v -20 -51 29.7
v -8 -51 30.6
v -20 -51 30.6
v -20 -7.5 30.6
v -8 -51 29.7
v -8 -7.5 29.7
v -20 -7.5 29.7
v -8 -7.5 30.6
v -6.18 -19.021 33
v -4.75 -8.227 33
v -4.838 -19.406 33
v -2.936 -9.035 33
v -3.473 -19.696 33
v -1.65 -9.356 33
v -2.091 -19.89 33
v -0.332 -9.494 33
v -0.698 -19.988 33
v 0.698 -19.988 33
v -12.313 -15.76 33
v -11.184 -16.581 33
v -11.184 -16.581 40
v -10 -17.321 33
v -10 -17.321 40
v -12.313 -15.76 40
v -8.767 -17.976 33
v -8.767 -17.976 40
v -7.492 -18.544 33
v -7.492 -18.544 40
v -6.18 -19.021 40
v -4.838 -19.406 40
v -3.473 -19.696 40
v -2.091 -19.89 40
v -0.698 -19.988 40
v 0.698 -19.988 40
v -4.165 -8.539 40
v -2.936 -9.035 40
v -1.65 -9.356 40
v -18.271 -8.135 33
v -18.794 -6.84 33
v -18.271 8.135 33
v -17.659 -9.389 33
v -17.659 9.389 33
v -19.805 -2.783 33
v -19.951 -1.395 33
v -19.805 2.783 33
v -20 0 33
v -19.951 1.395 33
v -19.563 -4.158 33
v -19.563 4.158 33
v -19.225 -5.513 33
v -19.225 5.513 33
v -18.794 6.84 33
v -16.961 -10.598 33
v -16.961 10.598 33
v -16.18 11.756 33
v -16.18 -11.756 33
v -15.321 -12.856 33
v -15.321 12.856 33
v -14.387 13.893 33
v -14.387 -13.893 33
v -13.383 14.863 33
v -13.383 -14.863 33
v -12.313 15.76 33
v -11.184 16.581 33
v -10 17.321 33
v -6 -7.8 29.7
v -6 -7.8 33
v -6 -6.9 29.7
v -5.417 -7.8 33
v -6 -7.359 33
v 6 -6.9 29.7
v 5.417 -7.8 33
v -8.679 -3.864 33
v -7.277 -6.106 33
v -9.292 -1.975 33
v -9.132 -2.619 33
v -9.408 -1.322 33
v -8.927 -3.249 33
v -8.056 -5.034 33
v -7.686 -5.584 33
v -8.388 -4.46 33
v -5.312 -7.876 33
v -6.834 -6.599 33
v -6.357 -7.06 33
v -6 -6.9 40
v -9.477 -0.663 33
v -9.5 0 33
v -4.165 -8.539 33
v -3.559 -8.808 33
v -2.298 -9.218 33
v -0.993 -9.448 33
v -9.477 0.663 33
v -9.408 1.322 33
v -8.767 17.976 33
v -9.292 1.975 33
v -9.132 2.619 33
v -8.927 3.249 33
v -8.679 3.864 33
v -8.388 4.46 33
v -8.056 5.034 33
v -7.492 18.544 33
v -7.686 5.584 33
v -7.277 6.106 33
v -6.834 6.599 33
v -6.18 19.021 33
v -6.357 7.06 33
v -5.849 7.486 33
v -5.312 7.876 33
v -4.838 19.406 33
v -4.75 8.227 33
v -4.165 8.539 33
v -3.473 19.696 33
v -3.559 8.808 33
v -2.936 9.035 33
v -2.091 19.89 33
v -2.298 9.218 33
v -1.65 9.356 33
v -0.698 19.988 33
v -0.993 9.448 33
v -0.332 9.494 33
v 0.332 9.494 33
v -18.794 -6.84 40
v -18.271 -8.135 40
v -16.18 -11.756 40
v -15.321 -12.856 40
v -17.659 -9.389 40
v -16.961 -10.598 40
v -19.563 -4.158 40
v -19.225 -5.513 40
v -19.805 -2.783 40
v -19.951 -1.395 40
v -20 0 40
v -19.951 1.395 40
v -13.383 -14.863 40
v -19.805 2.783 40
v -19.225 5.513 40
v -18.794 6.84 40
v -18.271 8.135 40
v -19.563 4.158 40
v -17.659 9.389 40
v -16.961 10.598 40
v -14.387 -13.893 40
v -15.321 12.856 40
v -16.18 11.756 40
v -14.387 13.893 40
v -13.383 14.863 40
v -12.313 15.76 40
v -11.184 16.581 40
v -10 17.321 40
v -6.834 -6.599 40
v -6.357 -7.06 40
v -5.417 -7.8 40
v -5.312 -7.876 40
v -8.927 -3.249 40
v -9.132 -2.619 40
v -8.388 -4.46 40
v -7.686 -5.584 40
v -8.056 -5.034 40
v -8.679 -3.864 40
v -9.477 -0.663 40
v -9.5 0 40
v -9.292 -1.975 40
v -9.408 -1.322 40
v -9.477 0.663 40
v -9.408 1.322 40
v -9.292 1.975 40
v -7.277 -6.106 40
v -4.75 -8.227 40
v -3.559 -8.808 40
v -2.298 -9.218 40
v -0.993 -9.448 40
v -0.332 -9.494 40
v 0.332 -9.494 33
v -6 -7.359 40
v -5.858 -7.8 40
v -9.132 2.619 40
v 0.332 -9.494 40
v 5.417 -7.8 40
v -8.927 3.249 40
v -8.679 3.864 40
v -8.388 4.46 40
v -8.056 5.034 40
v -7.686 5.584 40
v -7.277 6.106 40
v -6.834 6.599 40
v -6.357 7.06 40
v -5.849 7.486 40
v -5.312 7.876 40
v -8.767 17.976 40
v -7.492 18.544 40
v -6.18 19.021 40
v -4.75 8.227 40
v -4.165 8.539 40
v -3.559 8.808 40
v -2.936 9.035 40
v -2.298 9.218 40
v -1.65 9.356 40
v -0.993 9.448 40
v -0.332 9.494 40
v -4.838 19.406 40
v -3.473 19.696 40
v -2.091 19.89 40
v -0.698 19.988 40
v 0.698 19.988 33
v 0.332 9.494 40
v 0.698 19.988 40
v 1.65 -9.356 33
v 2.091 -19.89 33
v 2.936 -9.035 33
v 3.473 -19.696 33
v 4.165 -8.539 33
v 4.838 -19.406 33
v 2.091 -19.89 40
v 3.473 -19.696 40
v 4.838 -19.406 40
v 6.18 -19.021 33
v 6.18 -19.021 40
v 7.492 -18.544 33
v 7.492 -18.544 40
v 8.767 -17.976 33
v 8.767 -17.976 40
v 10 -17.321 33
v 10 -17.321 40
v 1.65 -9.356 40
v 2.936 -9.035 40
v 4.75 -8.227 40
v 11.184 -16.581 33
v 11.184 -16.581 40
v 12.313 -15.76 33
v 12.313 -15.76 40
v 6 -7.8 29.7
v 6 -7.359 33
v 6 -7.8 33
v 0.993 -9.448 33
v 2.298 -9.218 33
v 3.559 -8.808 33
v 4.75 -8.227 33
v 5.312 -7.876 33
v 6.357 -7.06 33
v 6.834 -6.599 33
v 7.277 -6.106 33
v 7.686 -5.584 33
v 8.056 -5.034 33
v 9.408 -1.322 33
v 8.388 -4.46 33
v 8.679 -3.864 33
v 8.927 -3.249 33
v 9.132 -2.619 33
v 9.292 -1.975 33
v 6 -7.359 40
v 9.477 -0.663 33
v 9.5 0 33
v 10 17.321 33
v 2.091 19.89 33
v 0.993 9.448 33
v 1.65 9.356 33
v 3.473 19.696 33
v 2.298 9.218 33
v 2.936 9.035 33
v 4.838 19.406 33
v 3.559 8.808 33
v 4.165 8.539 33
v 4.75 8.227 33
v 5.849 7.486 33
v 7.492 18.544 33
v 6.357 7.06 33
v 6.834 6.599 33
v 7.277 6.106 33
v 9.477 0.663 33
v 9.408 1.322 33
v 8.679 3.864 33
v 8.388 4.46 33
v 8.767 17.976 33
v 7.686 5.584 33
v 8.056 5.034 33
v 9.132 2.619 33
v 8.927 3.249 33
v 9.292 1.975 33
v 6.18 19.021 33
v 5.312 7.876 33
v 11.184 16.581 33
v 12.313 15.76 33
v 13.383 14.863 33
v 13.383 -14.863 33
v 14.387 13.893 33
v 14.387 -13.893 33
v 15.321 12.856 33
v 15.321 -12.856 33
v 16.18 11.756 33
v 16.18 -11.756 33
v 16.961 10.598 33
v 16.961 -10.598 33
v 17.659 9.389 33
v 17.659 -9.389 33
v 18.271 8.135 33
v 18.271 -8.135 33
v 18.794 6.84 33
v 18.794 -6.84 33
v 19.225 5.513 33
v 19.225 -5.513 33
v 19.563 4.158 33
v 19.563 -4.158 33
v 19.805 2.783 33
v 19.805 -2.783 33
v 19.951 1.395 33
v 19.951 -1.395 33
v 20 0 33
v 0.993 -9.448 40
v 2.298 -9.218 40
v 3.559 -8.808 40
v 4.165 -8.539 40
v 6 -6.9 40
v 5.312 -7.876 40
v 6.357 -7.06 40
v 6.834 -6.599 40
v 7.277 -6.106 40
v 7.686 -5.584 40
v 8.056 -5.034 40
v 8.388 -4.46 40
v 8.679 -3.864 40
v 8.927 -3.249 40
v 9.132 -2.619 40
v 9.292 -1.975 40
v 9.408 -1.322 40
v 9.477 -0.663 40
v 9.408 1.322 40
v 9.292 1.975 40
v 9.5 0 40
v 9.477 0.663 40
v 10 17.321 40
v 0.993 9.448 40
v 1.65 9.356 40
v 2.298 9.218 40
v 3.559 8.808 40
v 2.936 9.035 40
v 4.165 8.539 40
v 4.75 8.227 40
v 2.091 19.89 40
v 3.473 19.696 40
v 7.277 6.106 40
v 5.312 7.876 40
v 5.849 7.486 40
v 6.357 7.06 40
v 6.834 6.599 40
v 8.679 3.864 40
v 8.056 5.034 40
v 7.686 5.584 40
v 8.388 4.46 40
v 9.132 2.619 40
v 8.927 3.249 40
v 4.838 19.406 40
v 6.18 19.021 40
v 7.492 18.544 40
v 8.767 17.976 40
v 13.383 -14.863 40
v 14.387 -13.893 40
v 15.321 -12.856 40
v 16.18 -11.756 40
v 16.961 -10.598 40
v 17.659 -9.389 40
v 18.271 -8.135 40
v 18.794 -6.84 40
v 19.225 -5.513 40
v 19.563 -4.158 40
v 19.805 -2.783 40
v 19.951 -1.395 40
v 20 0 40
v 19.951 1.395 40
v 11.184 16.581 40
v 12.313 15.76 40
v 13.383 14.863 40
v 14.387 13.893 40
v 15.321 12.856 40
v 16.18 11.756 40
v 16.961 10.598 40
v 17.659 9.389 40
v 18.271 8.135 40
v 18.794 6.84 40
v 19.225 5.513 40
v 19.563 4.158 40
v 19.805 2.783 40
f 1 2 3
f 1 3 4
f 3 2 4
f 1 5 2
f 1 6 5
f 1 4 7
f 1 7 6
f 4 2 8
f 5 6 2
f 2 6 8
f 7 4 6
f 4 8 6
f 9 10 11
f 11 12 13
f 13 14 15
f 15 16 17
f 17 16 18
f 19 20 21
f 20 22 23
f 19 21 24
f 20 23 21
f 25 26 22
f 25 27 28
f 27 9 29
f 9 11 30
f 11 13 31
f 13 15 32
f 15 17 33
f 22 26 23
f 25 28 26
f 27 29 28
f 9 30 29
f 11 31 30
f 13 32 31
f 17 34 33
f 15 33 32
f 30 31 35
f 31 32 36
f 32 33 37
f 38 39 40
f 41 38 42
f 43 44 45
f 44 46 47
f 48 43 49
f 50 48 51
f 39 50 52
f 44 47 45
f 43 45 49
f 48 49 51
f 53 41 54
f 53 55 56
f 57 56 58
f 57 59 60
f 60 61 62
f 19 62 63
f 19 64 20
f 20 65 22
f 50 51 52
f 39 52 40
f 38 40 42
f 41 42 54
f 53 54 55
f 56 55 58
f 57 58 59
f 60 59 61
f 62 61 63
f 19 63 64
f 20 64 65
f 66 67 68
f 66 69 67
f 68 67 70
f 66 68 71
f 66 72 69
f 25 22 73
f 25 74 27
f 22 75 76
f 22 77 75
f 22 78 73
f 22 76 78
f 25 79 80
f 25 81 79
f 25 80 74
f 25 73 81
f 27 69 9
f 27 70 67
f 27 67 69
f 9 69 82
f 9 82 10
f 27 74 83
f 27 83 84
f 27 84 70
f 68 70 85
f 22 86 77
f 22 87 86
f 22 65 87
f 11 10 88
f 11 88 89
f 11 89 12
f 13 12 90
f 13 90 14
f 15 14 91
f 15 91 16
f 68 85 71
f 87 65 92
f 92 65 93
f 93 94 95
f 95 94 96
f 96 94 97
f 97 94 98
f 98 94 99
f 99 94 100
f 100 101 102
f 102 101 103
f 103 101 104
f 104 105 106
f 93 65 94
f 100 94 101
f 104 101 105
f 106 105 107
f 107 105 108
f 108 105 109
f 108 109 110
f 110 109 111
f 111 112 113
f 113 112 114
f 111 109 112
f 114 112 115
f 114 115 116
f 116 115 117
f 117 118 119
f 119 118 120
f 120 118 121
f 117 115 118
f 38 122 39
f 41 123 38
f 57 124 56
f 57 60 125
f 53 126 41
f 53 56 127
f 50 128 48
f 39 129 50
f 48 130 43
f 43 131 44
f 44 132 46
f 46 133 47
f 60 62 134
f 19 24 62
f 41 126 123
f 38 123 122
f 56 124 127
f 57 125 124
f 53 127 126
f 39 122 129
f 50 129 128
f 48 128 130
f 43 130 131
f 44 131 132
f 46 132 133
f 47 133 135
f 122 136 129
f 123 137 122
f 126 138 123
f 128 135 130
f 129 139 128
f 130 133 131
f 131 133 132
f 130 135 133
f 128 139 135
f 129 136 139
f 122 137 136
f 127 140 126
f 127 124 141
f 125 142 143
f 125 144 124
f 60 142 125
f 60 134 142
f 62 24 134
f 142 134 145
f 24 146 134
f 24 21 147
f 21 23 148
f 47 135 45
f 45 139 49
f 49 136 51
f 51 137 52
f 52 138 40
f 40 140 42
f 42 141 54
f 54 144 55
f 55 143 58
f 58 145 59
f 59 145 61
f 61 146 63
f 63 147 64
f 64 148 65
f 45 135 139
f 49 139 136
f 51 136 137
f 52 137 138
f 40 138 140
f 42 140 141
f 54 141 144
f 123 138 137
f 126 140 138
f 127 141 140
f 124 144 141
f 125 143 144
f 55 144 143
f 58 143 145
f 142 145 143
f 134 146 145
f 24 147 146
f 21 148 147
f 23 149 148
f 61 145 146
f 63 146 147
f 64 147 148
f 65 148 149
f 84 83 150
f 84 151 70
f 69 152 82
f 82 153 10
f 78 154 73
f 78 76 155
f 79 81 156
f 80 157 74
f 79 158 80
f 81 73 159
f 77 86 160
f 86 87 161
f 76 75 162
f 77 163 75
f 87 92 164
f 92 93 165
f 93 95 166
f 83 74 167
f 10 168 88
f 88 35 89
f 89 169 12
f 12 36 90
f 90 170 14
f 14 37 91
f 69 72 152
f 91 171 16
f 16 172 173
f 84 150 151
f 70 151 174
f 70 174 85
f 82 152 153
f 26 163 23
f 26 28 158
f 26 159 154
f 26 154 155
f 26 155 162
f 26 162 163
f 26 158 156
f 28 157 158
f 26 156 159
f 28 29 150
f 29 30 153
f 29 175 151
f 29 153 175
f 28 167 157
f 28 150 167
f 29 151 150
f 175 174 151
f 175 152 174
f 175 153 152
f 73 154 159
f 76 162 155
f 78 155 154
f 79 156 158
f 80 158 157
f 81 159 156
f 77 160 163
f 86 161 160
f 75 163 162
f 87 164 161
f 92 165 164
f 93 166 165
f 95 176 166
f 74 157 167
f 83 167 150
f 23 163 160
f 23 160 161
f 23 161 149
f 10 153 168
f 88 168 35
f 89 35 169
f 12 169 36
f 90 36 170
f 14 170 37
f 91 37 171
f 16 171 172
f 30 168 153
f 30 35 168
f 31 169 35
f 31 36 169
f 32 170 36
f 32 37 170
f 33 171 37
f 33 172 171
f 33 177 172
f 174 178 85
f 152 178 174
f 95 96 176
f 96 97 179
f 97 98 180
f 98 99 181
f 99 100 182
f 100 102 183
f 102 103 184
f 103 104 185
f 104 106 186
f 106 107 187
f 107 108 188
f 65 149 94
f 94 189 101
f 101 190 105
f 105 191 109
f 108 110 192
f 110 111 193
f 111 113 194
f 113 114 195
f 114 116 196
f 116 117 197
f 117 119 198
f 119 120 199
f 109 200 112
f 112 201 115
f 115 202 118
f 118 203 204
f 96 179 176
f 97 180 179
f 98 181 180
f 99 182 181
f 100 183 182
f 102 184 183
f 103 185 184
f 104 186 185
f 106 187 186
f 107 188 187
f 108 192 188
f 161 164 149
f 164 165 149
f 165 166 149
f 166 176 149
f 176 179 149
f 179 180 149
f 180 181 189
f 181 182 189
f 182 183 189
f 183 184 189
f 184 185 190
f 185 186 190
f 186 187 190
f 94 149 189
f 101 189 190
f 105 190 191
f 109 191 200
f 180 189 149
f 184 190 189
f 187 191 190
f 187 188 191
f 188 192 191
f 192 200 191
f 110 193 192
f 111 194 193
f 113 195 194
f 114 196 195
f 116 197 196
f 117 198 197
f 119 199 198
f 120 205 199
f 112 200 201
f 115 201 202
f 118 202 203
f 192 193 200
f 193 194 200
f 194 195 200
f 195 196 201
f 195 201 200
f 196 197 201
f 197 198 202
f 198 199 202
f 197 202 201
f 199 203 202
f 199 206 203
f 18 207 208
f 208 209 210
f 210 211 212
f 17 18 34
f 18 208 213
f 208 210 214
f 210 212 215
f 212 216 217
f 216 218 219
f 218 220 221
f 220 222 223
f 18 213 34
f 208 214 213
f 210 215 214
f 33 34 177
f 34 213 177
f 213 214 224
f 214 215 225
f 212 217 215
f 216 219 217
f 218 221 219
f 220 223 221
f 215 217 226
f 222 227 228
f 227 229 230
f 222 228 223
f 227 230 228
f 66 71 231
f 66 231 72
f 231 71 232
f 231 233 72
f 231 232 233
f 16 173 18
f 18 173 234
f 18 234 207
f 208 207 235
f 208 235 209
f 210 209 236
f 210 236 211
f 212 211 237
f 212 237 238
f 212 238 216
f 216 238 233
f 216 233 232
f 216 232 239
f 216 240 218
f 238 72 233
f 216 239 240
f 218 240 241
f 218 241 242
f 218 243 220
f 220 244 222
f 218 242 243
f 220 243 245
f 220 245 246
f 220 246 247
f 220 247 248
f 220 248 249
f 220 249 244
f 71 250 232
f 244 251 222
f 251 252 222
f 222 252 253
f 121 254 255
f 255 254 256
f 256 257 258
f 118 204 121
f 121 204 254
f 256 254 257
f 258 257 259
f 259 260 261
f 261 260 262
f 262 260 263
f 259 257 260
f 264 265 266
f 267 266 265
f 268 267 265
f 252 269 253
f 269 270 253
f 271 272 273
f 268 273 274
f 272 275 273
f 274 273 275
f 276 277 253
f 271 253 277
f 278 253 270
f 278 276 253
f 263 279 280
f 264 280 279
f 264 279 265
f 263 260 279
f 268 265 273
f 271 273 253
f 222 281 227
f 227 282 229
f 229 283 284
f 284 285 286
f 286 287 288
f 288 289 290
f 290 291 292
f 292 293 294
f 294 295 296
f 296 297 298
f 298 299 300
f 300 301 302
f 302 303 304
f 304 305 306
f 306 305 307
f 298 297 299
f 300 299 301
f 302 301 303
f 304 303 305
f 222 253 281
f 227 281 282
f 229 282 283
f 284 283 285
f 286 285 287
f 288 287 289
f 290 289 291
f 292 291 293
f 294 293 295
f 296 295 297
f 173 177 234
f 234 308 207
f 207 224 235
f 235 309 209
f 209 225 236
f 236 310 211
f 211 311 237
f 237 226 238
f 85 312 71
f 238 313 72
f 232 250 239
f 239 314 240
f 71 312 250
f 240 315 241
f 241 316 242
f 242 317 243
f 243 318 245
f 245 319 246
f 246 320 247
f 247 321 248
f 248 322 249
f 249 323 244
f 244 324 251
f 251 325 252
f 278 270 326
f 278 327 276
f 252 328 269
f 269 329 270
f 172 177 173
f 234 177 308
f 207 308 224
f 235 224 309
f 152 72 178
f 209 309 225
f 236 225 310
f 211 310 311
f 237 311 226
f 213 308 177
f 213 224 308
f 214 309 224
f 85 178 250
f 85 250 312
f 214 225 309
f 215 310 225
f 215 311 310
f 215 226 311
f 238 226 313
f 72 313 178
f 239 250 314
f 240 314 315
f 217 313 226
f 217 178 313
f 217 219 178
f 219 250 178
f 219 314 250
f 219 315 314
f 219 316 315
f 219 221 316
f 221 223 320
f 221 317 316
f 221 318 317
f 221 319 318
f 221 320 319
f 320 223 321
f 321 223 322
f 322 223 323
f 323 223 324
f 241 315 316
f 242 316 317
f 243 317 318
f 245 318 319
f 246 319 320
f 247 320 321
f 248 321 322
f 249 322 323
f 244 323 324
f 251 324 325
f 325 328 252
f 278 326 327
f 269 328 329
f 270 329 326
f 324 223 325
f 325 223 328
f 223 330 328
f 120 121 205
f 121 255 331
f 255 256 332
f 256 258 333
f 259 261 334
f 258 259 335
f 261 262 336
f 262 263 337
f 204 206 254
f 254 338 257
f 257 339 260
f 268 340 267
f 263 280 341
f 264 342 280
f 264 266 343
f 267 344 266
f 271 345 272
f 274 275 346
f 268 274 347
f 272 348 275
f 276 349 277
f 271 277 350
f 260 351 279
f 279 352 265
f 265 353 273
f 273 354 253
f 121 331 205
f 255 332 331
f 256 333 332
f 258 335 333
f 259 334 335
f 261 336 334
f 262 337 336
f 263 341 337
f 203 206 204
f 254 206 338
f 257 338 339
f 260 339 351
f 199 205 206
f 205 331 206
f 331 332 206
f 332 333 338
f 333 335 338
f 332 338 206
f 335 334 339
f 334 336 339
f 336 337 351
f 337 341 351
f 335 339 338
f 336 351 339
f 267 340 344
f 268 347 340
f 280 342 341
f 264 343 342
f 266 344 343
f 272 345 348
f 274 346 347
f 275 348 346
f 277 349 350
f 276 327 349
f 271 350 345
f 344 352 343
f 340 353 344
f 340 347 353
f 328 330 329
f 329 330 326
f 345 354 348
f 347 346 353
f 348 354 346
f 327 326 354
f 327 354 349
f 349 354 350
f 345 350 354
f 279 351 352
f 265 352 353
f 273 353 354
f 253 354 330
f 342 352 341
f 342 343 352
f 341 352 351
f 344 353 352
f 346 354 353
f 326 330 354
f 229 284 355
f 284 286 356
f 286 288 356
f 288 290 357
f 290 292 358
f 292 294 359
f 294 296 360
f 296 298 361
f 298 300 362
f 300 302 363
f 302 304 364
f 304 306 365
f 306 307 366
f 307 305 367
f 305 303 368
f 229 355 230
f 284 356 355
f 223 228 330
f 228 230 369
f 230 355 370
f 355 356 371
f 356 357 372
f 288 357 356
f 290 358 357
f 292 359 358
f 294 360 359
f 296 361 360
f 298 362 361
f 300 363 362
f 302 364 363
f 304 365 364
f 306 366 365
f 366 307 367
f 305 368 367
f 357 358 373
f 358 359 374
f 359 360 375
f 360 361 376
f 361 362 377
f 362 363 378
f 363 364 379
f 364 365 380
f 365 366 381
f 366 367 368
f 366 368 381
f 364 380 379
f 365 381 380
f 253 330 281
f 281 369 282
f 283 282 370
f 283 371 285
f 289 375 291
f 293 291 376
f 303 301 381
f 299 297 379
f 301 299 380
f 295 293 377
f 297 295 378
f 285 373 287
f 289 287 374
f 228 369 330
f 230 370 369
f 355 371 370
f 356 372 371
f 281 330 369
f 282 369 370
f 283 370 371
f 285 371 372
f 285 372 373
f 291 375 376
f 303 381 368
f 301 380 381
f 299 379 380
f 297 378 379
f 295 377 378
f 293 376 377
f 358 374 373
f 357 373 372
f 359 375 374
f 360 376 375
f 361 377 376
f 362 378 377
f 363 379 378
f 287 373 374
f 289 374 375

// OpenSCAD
// file: ../lib/lib.scad
// Shared helpers. Include AFTER params.scad (needs TOL, M3_* etc.).
$fa = 4; $fs = 0.5;

module rrect(size, r) {            // 2D rounded rectangle, centred
    r2 = min(r, min(size[0], size[1]) / 2 - 0.001);
    offset(r = r2) square([size[0] - 2 * r2, size[1] - 2 * r2], center = true);
}
module rbox(size, r, center_xy = true) {   // box with rounded vertical edges
    translate(center_xy ? [0, 0, 0] : [size[0] / 2, size[1] / 2, 0])
        linear_extrude(size[2]) rrect([size[0], size[1]], r);
}
module rbox_at(x0, x1, y0, y1, z0, z1, r = 0.01) {
    translate([(x0 + x1) / 2, (y0 + y1) / 2, z0]) rbox([x1 - x0, y1 - y0, z1 - z0], r);
}
module box_at(x0, x1, y0, y1, z0, z1) { translate([x0, y0, z0]) cube([x1 - x0, y1 - y0, z1 - z0]); }

module ring(ro, ri, h) { difference() { cylinder(r = ro, h = h); translate([0, 0, -1]) cylinder(r = ri, h = h + 2); } }
module ring_sector(ro, ri, h, a0, a1) {
    intersection() {
        ring(ro, ri, h);
        linear_extrude(h) polygon(concat([[0, 0]], [for (a = [a0 : (a1 - a0) / 24 : a1]) 2 * ro * [cos(a), sin(a)]]));
    }
}
// teardrop hole along an axis lying horizontal (axis = Y after rotation), printable w/o support
module teardrop2d(d) { union() { circle(d = d); rotate(45) square(d / 2); } }
// vertical heat-set insert hole, opening at z=0 going +z (depth l)
module insert_hole(l = M3_INSERT_L) { translate([0, 0, -EPS]) cylinder(d = M3_INSERT_D, h = l + EPS); }
module m3_clear(l) { translate([0, 0, -EPS]) cylinder(d = M3_CLEAR, h = l + 2 * EPS); }
module m3_csk(l) {  // countersunk clearance from z=0 upward, head at z=0 side
    translate([0, 0, -EPS]) { cylinder(d = M3_CLEAR, h = l + 2 * EPS); cylinder(d1 = 6.4, d2 = M3_CLEAR, h = 1.7); }
}
module card2d() { rrect([CARD_L, CARD_W], CARD_R); }
module card_at(cy, z) { translate([0, cy, z]) linear_extrude(CARD_T) card2d(); }

// ---- gears ----
function _inv(a) = tan(a) - a * PI_ / 180;           // involute function, a in deg
function _invpt(rb, r, ang0, s) = let(al = acos(rb / r), th = ang0 - s * (_inv(al) * 180 / PI_)) [r * cos(th), r * sin(th)];
module involute_gear2d(m, z, pa = 20, clearance = 0.05) {
    rp = m * z / 2; rb = rp * cos(pa); ra = rp + m - clearance; rf = rp - 1.25 * m;
    half = 90 / z + _inv(pa) * 180 / PI_;            // tooth half-angle at base (deg)
    n = 8;
    rs = [for (i = [0 : n]) max(rb, rf) + (ra - max(rb, rf)) * i / n];
    union() {
        circle(r = rf, $fn = z * 4);
        for (k = [0 : z - 1]) rotate(k * 360 / z) polygon(concat(
            [[rf * cos(-half), rf * sin(-half)]],
            [for (r = rs) let(p = _invpt(rb, r, half, 1)) [p[0], -p[1]]],
            [for (i = [n : -1 : 0]) _invpt(rb, rs[i], half, 1)],
            [[rf * cos(half), rf * sin(half)]]));
    }
}
// straight gear rack (2D in XY: teeth along +x, pointing -y, pitch line at y=0)
module gear_rack2d(m, len, back = 3) {
    p = PI_ * m; ad = m; de = 1.25 * m; t = tan(20);
    n = ceil(len / p) + 1;
    intersection() {
        union() {
            translate([0, de]) square([len, back]);
            for (i = [0 : n]) if (i * p - p / 4 - (p / 4 + de * t) >= 0 && i * p + de * t <= len) translate([i * p - p / 4, 0]) polygon([
                [-(p / 4 + de * t), de + 0.01], [p / 4 + de * t + 0.01, de + 0.01],
                [p / 4 - ad * t, -ad], [-(p / 4 - ad * t), -ad] ]);
        }
        translate([0, -ad - 1]) square([len, ad + de + back + 2]);
    }
}
// GT2 belt-tooth profile ring (teeth outward), 2D
module gt2_ring2d(n, r_land, ri) {
    union() {
        difference() { circle(r = r_land + 0.01, $fn = n * 2); circle(r = ri, $fn = n * 2); }
        for (k = [0 : n - 1]) rotate(k * 360 / n)
            translate([r_land, 0]) hull() { translate([-0.2, 0]) square([0.2, 1.0], center = true); translate([0.25, 0]) circle(r = 0.5, $fn = 12); }
    }
}
// main file
// Vendor model: 20-way 1.27 mm flat ribbon cable (12 mm wide x 0.9 mm), wound 3 turns as a
// clock spring in the bearing ID (static inner end, rotating outer end). Shown as the coil
// envelope plus the two tails. Local = world (base part). Rotating tail drawn at turret 0.
include <../params.scad>
include <../lib/lib.scad>
module vendor_ribbon_cable() color([0.75,0.75,0.8]) {
    translate([0, 0, SPOOL_Z0]) ring(SPOOL_RO, SPOOL_RI + 2.5, SPOOL_H);                       // coil envelope
    translate([-RIBBON_W / 2, -SPOOL_RI - 0.8, DECK_Z - 0.3]) cube([RIBBON_W, 0.9, SPOOL_Z0 + SPOOL_H - DECK_Z + 0.3]);  // inner tail down the hub slit
    translate([(RIBBON_SLOT_X[0] + RIBBON_SLOT_X[1]) / 2 - RIBBON_W / 2, RIBBON_SLOT_Y1 + 1, DECK_Z - 0.3]) cube([RIBBON_W, -RIBBON_SLOT_Y1 - SPOOL_RI - 1.5, 0.9]);  // along the deck slot
}
vendor_ribbon_cable();
